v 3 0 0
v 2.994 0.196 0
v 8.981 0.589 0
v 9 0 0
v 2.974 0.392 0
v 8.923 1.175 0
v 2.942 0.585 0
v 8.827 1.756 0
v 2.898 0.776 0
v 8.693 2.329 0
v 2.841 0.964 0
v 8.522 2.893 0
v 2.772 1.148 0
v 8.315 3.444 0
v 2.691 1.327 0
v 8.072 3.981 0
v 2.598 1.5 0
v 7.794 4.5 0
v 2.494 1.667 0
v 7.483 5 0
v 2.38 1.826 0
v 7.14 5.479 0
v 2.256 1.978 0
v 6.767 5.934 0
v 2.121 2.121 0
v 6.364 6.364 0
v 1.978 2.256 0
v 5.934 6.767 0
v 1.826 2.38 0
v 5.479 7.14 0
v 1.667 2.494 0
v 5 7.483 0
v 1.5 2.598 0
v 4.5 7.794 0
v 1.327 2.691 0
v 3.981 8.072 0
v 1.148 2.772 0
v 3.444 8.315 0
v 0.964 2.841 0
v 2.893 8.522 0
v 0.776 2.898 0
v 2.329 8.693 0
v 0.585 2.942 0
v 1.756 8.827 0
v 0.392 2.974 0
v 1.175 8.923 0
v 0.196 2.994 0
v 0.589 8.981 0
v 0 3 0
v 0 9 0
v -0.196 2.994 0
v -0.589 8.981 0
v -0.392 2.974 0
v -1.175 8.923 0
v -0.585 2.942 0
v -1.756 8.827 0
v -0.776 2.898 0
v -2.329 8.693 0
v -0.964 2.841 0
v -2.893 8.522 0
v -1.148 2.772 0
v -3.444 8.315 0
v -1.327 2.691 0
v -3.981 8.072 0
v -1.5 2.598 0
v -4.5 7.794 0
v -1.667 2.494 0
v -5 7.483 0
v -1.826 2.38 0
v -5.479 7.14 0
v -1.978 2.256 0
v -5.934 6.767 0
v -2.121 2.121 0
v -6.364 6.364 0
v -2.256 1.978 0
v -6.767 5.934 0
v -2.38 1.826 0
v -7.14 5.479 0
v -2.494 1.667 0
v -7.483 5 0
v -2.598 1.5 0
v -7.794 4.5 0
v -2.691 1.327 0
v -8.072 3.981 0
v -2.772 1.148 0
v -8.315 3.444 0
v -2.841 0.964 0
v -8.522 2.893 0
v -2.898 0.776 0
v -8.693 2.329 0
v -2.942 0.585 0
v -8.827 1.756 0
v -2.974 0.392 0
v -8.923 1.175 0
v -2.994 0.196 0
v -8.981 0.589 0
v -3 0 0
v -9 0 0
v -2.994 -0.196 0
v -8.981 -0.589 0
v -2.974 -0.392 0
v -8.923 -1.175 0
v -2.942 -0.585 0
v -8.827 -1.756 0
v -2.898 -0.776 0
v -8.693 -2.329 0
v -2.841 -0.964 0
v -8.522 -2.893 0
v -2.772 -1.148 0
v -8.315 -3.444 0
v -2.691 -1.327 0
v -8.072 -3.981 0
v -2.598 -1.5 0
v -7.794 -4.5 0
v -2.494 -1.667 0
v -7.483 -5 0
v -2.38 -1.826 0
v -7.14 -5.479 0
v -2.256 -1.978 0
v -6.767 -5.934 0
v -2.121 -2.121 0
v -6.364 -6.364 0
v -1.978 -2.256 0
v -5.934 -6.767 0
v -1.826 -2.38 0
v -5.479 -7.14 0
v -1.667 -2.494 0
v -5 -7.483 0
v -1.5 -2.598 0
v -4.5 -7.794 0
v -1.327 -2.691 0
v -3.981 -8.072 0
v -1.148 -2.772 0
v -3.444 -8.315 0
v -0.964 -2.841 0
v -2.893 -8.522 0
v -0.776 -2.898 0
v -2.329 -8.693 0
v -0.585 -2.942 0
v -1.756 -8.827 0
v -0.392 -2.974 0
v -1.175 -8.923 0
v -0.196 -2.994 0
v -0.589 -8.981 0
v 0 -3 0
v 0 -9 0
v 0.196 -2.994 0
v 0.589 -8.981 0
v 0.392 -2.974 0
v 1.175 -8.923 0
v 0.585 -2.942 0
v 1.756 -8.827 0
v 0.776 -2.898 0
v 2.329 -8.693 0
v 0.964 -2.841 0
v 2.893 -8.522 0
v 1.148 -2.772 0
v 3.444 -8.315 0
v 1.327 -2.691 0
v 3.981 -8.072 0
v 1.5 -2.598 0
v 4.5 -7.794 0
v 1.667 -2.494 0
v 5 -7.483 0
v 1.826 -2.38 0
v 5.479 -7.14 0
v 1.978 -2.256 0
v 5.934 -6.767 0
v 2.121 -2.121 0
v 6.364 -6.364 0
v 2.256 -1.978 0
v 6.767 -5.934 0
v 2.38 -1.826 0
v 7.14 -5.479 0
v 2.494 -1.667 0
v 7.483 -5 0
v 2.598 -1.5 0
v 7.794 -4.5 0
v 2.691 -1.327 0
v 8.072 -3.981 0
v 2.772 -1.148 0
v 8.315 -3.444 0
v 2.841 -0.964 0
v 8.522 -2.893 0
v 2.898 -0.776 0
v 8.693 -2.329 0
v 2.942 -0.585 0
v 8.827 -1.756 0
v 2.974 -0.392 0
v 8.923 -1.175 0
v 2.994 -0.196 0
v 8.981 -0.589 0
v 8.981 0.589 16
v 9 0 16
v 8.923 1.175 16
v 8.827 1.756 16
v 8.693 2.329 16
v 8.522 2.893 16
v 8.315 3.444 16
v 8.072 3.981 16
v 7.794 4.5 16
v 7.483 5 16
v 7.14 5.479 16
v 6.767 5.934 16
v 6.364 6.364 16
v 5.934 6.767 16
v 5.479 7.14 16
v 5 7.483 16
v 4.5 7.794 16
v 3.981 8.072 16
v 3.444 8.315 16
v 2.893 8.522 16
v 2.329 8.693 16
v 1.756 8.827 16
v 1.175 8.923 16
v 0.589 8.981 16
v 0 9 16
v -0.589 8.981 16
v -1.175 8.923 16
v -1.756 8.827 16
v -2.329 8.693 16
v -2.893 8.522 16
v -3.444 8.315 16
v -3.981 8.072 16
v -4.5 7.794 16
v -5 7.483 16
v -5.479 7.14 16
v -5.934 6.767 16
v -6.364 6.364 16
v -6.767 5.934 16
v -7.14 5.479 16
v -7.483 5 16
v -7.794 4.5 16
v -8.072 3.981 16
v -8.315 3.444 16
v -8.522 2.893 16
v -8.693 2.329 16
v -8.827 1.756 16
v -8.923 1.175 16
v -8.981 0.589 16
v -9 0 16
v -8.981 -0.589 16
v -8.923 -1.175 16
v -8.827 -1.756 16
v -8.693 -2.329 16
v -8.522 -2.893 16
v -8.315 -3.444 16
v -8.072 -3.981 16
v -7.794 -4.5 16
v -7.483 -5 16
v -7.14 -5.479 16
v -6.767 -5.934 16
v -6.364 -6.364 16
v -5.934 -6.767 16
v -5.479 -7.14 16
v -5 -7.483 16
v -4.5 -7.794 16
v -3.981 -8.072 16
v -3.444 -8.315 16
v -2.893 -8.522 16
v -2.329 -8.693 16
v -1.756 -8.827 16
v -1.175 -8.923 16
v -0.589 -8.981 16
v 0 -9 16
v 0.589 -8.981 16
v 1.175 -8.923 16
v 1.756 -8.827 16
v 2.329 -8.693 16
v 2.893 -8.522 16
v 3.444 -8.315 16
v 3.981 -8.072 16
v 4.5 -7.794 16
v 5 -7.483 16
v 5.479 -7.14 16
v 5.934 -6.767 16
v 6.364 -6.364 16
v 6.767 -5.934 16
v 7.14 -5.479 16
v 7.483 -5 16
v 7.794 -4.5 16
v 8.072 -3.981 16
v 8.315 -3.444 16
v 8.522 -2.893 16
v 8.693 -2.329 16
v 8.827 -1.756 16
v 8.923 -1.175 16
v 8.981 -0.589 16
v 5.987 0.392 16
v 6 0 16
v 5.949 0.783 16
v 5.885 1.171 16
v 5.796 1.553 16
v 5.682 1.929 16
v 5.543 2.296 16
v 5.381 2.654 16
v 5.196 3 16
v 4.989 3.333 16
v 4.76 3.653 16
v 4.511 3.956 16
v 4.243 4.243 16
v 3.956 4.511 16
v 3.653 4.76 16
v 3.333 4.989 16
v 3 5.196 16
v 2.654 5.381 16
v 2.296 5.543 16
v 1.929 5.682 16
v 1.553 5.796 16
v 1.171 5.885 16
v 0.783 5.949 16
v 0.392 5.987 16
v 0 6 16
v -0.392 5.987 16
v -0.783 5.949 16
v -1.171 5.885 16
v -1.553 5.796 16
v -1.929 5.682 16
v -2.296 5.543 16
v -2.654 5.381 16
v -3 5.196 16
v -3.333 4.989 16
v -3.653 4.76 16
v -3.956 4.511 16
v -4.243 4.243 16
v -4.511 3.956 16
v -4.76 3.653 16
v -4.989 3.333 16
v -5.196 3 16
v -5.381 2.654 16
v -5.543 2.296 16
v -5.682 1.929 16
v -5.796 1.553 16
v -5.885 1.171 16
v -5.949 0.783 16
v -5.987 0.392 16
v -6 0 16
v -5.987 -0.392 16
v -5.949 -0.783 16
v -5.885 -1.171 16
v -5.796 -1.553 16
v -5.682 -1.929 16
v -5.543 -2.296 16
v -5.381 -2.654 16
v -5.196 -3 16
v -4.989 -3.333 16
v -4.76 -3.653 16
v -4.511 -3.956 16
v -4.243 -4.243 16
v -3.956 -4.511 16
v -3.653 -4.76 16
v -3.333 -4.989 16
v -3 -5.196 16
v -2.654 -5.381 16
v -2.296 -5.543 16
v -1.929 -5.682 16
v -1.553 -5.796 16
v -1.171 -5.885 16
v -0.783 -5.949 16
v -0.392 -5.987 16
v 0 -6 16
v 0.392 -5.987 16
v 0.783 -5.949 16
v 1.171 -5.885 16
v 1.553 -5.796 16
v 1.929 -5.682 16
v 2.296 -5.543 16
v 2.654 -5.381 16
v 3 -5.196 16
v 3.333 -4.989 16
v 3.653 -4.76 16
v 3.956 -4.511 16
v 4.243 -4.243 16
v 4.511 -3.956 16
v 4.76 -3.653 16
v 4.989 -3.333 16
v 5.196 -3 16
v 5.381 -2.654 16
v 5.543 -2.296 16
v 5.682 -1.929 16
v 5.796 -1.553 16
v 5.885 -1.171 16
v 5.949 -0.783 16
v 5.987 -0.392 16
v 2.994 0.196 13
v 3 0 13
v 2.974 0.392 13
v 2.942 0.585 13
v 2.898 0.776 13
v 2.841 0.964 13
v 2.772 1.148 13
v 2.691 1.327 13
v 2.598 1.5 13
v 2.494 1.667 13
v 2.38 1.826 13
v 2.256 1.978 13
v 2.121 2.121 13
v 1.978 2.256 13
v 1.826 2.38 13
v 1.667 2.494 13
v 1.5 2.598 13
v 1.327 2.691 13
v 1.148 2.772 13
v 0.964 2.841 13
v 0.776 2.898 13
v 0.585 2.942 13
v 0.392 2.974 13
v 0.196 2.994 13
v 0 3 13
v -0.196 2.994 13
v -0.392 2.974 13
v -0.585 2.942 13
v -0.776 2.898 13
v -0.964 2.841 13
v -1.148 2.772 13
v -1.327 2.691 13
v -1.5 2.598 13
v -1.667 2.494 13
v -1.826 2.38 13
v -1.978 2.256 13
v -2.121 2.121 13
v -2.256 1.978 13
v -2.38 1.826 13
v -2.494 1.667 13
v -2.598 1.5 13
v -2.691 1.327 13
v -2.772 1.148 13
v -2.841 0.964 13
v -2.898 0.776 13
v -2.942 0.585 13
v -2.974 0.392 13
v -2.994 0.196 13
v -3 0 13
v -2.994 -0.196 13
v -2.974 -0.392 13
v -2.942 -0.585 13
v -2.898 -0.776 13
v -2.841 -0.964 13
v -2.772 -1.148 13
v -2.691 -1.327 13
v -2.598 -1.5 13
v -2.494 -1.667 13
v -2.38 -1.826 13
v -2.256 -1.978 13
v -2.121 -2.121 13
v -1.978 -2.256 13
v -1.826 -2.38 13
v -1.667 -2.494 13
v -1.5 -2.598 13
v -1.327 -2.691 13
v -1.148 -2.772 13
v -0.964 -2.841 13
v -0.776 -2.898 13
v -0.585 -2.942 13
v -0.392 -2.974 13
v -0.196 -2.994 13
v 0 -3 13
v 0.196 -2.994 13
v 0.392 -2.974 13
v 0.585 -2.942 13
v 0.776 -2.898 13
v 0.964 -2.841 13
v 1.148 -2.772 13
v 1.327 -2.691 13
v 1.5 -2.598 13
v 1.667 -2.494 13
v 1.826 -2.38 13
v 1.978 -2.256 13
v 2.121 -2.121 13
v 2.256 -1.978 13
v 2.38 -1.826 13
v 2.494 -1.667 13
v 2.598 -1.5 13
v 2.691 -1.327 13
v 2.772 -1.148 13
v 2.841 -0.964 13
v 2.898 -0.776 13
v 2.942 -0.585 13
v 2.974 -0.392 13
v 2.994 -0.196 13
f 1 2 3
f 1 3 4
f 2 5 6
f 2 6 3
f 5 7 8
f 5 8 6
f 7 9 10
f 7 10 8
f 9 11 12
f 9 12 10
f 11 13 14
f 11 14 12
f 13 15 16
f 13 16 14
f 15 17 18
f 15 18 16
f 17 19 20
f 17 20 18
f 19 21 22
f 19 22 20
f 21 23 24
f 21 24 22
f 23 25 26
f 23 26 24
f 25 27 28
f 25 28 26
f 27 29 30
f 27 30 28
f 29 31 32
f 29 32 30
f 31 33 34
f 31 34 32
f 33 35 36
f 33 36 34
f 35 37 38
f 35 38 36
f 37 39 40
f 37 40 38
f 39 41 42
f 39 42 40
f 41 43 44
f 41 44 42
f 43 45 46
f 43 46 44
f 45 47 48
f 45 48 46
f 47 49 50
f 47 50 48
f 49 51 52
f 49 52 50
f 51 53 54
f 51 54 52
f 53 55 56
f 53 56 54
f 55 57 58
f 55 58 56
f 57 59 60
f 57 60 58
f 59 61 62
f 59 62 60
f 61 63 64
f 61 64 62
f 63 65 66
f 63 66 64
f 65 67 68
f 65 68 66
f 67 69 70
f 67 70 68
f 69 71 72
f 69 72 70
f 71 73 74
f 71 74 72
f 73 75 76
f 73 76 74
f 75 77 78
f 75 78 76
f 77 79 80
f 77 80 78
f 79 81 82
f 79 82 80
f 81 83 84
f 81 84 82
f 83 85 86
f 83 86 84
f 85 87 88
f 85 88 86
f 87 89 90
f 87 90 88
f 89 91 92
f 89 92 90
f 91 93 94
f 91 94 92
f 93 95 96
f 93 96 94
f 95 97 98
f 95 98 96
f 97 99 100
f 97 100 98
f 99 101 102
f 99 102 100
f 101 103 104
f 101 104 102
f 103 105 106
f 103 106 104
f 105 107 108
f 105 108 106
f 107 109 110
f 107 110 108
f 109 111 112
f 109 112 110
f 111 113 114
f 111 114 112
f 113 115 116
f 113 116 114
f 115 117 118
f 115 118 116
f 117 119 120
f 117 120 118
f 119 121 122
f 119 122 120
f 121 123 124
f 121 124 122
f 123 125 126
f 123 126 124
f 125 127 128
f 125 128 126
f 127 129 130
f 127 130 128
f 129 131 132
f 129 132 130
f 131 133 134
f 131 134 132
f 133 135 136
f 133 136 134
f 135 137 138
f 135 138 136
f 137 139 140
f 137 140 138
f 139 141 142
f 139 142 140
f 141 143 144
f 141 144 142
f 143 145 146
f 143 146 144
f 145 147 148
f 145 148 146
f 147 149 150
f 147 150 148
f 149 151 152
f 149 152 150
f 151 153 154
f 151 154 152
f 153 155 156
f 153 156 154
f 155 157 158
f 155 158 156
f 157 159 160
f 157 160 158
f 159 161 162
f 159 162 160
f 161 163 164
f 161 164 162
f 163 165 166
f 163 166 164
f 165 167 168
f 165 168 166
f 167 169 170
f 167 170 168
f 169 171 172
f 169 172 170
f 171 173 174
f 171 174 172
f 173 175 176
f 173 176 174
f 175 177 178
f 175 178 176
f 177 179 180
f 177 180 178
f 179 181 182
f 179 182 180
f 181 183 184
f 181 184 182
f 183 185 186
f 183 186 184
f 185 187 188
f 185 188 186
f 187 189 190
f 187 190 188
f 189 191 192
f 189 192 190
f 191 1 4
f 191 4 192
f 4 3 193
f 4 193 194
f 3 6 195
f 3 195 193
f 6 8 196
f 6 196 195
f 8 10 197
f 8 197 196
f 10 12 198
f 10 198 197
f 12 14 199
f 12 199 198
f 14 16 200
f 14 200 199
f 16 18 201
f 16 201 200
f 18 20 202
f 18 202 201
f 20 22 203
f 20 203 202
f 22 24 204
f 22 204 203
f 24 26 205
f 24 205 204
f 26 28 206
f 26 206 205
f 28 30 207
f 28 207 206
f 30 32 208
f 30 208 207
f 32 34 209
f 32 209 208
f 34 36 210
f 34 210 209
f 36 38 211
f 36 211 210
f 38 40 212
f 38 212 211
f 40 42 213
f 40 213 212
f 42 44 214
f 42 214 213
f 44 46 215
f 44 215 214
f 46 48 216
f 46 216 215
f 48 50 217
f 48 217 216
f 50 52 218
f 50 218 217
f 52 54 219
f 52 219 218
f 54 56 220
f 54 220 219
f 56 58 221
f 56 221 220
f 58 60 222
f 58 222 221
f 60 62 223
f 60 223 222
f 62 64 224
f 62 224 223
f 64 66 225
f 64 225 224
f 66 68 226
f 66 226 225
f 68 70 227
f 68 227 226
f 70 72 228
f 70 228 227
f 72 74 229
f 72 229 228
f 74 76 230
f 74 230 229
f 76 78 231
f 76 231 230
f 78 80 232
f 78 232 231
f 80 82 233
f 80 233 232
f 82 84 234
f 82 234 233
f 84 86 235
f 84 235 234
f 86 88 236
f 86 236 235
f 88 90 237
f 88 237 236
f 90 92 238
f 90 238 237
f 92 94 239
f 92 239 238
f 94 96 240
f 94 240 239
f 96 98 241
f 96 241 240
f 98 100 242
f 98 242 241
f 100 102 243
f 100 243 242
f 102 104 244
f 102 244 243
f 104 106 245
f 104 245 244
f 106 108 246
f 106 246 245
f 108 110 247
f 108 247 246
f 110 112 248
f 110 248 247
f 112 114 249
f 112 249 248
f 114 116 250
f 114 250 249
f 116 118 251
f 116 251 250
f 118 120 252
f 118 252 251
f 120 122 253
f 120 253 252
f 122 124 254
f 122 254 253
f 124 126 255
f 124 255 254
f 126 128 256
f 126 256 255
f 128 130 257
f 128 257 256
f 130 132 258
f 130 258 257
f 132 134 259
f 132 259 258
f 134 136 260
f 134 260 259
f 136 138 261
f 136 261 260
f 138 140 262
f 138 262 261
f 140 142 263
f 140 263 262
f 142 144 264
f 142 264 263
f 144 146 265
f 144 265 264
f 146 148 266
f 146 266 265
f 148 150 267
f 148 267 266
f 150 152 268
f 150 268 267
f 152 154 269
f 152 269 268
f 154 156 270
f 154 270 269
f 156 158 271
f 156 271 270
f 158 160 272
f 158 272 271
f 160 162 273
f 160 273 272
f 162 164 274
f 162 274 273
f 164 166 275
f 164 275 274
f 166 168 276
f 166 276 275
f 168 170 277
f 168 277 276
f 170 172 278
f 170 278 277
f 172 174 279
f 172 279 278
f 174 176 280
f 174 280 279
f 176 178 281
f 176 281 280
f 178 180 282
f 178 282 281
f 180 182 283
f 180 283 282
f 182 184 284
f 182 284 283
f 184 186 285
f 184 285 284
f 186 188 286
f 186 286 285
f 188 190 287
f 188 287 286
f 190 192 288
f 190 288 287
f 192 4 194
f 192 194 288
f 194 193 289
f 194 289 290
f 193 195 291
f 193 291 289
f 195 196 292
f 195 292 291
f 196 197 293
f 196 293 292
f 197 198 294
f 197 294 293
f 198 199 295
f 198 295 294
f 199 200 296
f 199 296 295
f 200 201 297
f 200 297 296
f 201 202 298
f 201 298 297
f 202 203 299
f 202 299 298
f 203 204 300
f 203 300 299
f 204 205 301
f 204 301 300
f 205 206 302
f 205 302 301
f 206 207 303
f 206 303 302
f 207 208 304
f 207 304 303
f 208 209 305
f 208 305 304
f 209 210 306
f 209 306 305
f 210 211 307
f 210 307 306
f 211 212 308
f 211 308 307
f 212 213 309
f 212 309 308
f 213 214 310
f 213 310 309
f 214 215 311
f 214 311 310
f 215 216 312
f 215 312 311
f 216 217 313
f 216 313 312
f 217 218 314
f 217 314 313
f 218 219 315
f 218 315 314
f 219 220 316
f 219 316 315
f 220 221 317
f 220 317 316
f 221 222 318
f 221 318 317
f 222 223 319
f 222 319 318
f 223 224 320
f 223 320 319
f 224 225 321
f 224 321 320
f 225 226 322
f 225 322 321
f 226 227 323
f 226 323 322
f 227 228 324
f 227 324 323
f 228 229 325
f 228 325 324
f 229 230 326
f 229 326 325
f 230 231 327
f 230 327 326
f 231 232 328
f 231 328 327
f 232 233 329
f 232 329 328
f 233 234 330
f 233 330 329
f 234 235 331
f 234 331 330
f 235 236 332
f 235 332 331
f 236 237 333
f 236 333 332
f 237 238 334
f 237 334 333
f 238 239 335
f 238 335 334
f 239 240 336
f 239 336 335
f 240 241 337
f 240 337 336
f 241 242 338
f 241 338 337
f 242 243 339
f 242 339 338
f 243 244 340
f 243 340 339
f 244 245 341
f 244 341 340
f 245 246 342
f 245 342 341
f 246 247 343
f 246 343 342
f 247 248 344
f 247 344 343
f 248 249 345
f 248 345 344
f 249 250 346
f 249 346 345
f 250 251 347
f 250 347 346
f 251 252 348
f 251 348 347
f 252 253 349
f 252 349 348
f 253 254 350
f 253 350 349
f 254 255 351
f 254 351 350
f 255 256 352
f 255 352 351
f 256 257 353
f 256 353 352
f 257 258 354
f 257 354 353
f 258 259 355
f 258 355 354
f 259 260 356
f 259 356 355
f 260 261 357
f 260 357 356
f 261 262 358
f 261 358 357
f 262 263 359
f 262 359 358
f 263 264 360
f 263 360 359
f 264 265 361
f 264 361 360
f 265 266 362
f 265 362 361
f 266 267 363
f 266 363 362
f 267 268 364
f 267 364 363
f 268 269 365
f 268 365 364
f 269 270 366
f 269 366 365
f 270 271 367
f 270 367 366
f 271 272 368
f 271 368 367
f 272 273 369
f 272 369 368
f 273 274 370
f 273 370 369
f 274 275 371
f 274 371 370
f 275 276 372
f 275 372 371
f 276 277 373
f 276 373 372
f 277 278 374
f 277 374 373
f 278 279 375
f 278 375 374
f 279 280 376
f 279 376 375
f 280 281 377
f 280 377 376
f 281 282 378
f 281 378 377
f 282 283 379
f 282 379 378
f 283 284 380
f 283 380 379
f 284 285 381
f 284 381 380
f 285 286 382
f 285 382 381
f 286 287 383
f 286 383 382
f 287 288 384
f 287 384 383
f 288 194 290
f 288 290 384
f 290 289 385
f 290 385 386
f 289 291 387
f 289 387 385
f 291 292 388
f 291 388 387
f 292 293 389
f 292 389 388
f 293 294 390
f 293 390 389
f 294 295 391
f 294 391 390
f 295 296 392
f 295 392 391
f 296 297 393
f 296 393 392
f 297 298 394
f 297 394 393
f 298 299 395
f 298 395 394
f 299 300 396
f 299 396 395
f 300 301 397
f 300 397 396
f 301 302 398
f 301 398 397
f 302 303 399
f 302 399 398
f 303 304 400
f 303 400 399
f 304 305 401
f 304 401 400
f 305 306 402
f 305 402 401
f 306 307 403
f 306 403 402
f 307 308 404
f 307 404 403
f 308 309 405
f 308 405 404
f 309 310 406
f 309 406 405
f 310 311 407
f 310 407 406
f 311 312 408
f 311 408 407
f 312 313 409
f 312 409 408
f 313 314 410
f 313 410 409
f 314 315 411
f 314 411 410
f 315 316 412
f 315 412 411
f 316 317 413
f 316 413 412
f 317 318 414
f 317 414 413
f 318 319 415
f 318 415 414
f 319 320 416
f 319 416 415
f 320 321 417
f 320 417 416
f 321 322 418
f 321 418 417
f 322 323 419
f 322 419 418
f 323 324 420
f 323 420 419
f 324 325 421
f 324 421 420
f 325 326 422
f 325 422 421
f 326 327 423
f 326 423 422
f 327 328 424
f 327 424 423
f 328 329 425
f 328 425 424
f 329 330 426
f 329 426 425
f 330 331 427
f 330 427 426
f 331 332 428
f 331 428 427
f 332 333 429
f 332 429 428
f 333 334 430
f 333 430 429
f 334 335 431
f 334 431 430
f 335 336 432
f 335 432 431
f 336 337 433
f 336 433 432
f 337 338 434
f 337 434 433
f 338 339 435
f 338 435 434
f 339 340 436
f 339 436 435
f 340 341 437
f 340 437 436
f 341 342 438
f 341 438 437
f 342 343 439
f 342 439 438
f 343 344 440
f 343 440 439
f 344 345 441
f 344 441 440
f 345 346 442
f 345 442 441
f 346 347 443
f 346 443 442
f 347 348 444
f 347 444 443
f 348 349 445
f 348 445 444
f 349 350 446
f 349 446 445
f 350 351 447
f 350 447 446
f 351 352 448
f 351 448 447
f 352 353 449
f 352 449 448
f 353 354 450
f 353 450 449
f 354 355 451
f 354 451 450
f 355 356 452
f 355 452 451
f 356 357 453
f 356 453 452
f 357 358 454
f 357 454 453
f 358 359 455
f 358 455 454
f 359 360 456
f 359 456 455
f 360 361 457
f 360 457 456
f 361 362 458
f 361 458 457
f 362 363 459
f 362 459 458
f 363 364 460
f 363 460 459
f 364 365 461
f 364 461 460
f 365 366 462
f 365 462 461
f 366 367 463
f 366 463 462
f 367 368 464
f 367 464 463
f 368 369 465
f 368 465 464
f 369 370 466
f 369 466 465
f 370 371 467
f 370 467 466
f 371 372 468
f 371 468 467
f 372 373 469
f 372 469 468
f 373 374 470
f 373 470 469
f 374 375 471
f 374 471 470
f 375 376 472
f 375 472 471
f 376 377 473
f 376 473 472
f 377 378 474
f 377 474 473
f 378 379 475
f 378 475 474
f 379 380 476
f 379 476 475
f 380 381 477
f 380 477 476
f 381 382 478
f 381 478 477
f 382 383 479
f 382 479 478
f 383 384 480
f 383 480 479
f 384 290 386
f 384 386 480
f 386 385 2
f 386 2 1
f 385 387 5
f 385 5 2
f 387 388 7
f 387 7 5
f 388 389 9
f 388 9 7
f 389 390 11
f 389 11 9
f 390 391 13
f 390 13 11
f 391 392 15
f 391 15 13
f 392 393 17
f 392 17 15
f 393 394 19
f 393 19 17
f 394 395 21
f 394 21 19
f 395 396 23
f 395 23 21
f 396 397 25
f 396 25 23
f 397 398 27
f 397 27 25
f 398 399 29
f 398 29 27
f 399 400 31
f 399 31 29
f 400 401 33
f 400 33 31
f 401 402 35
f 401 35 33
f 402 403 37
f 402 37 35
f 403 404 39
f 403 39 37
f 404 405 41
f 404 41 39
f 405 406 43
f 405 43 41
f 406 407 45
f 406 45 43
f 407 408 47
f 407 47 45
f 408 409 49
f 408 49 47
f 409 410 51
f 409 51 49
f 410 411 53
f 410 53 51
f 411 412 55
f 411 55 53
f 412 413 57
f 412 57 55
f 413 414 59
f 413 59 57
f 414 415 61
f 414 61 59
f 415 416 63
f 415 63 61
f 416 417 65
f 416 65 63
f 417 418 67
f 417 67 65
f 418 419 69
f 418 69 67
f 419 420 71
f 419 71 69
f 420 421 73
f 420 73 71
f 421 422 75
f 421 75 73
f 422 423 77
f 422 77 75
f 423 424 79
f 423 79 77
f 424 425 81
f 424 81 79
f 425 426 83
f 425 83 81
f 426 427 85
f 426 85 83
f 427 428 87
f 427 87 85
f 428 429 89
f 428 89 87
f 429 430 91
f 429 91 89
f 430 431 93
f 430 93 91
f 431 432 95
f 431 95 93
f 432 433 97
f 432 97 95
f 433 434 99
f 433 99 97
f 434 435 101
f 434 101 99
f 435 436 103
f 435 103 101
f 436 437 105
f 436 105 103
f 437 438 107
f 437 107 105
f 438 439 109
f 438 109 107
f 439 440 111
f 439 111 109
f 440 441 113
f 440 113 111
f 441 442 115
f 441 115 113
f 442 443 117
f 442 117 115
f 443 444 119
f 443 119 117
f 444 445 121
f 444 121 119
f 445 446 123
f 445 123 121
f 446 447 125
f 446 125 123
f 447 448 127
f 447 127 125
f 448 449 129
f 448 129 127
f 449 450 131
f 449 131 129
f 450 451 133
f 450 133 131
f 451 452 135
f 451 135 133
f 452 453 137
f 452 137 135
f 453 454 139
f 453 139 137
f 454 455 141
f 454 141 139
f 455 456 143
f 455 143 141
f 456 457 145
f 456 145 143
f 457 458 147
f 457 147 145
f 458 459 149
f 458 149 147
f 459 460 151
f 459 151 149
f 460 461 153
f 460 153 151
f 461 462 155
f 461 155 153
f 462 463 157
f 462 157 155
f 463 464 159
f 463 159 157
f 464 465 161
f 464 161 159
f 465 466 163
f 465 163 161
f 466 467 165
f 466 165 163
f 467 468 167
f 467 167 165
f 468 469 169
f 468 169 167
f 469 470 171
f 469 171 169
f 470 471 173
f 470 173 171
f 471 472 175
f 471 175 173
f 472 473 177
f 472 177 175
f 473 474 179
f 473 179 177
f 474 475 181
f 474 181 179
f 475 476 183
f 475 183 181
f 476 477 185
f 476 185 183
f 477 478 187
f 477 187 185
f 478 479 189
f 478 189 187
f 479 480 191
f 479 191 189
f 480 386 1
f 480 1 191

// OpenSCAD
// Original MechIntel educational model. CC0-1.0. Units: mm.
// Not a standardized or load-rated component.
$fn=96;
// Section points: [radius, height], mm. Edit to change the profile.
section=[[3, 0], [9, 0], [9, 16], [6, 16], [3, 13]];
rotate_extrude($fn=96) polygon(points=section);
